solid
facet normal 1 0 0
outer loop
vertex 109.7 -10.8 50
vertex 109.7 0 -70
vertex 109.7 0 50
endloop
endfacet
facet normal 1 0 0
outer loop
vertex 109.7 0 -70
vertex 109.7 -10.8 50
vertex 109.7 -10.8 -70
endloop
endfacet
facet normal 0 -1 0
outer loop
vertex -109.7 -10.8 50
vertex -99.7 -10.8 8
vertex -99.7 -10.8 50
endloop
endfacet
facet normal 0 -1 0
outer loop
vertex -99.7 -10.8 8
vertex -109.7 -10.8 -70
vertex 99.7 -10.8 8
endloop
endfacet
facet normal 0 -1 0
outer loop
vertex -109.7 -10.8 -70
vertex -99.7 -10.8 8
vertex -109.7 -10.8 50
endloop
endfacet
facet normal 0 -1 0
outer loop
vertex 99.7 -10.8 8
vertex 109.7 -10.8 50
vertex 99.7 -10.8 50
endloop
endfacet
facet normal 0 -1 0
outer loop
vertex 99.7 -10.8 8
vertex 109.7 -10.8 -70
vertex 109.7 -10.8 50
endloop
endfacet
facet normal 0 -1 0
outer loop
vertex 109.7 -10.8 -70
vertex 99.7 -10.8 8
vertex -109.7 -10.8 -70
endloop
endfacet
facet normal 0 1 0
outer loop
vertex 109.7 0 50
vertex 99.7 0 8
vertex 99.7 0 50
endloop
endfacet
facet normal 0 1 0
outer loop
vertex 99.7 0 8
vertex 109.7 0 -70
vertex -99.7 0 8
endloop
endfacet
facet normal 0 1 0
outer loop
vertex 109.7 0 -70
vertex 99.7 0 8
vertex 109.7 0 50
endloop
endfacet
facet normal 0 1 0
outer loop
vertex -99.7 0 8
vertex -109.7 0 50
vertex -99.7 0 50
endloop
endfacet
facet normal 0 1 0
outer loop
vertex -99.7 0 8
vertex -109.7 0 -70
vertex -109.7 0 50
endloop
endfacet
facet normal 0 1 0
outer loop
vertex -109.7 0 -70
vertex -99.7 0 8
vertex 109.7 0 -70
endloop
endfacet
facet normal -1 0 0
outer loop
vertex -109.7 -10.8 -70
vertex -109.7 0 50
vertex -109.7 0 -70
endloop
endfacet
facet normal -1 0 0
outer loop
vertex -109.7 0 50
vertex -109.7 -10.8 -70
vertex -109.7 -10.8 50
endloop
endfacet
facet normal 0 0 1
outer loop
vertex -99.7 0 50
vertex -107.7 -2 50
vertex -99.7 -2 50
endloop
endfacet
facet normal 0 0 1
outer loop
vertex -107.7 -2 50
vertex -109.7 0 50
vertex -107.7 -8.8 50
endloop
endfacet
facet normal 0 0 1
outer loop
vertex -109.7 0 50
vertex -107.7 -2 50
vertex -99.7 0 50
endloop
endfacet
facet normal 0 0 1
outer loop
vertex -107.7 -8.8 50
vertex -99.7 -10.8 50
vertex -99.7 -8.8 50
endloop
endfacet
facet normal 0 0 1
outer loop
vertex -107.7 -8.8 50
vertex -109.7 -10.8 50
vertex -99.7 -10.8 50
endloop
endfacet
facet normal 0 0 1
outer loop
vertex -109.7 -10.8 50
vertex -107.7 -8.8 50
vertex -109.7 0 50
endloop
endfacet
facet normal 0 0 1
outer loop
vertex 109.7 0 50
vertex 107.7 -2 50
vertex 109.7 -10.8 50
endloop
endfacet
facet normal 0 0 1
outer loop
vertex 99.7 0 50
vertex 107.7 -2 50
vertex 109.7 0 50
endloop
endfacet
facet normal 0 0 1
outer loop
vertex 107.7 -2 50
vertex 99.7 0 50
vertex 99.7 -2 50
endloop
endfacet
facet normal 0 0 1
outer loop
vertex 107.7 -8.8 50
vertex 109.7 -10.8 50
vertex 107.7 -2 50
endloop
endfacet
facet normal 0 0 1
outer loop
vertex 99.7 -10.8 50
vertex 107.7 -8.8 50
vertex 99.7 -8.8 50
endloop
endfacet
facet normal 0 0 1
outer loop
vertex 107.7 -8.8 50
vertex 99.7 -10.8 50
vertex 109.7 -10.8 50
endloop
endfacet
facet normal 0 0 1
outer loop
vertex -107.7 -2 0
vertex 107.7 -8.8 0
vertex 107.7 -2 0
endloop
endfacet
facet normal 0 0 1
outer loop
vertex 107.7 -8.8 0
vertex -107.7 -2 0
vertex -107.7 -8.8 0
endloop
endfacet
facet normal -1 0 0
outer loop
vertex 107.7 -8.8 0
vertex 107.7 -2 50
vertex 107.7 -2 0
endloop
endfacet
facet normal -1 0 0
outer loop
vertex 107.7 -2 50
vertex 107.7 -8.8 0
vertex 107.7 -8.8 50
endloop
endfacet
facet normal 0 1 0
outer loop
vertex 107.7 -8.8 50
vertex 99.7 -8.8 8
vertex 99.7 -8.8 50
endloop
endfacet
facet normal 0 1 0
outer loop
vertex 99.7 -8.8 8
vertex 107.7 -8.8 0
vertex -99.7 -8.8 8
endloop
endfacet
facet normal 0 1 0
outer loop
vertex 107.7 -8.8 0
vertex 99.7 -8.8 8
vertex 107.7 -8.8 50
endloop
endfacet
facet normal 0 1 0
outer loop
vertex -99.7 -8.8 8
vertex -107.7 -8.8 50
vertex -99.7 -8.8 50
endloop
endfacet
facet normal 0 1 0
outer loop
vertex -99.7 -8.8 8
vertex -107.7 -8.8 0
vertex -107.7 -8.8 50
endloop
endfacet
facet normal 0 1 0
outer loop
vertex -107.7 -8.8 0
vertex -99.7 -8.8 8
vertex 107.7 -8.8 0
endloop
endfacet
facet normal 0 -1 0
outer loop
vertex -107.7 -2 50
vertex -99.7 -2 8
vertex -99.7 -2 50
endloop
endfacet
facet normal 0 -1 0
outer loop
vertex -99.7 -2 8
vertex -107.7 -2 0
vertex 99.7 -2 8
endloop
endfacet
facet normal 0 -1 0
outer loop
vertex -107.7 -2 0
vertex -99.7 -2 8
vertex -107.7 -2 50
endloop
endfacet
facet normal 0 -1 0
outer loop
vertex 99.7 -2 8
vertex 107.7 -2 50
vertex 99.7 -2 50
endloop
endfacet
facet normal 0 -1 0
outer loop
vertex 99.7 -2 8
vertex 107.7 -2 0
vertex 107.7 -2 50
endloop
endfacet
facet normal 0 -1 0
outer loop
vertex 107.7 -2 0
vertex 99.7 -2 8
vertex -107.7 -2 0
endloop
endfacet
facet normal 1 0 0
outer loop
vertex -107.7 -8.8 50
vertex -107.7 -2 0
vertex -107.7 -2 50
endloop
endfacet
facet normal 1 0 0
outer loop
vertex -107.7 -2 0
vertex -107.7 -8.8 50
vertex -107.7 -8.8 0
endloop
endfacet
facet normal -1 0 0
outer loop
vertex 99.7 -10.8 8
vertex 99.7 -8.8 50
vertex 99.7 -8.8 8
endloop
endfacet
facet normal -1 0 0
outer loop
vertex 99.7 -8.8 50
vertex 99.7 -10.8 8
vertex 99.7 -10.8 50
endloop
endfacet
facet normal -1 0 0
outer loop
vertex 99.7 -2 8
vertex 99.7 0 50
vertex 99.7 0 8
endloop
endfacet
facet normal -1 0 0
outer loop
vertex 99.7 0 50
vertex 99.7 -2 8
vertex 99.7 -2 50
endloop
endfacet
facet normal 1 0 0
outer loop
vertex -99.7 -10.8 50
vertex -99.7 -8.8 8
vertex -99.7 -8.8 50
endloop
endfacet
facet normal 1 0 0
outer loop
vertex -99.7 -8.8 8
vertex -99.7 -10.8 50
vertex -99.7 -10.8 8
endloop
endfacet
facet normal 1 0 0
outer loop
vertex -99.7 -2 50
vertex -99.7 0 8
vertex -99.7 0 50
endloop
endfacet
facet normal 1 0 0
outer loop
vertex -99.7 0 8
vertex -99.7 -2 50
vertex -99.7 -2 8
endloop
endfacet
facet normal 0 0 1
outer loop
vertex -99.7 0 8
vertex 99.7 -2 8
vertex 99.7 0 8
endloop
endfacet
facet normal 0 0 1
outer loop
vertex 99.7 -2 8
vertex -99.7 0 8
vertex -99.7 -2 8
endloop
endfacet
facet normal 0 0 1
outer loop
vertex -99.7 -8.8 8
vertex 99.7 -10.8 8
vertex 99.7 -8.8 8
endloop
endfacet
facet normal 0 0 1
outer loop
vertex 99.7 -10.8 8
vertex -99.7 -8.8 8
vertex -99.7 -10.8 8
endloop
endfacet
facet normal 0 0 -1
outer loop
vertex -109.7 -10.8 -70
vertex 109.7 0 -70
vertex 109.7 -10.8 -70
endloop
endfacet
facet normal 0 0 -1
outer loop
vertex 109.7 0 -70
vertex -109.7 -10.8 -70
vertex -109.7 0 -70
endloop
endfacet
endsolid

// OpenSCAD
// to lift ipad up and fit my eye level when lying down

wt = 2; // wall thickness
px = 215 + 0.4; // ipad x dim
pz = 6.4 + 0.4; // ipad z dim
bt = 8; // bezzle thickness

epy = 50; // extender ipad y dim 
ey = 70; // extended y dim

lg = 200;

// calculated dims ============
ax = px + 2*wt; // all x dim


rotate([90,0,0]) union() {
    difference() {
        translate([-ax/2,0,0]) cube([ax, epy, pz + 2*wt]);
        translate([-px/2,0,wt]) cube([px, epy, pz]);
        bx = px-2*bt; // bezzle cutting x dim
        translate([-bx/2, bt, -lg/2]) cube([bx, lg, lg]);
    }

    mirror([0,1,0]) translate([-ax/2,0,0]) cube([ax, ey, pz + 2*wt]);
}
